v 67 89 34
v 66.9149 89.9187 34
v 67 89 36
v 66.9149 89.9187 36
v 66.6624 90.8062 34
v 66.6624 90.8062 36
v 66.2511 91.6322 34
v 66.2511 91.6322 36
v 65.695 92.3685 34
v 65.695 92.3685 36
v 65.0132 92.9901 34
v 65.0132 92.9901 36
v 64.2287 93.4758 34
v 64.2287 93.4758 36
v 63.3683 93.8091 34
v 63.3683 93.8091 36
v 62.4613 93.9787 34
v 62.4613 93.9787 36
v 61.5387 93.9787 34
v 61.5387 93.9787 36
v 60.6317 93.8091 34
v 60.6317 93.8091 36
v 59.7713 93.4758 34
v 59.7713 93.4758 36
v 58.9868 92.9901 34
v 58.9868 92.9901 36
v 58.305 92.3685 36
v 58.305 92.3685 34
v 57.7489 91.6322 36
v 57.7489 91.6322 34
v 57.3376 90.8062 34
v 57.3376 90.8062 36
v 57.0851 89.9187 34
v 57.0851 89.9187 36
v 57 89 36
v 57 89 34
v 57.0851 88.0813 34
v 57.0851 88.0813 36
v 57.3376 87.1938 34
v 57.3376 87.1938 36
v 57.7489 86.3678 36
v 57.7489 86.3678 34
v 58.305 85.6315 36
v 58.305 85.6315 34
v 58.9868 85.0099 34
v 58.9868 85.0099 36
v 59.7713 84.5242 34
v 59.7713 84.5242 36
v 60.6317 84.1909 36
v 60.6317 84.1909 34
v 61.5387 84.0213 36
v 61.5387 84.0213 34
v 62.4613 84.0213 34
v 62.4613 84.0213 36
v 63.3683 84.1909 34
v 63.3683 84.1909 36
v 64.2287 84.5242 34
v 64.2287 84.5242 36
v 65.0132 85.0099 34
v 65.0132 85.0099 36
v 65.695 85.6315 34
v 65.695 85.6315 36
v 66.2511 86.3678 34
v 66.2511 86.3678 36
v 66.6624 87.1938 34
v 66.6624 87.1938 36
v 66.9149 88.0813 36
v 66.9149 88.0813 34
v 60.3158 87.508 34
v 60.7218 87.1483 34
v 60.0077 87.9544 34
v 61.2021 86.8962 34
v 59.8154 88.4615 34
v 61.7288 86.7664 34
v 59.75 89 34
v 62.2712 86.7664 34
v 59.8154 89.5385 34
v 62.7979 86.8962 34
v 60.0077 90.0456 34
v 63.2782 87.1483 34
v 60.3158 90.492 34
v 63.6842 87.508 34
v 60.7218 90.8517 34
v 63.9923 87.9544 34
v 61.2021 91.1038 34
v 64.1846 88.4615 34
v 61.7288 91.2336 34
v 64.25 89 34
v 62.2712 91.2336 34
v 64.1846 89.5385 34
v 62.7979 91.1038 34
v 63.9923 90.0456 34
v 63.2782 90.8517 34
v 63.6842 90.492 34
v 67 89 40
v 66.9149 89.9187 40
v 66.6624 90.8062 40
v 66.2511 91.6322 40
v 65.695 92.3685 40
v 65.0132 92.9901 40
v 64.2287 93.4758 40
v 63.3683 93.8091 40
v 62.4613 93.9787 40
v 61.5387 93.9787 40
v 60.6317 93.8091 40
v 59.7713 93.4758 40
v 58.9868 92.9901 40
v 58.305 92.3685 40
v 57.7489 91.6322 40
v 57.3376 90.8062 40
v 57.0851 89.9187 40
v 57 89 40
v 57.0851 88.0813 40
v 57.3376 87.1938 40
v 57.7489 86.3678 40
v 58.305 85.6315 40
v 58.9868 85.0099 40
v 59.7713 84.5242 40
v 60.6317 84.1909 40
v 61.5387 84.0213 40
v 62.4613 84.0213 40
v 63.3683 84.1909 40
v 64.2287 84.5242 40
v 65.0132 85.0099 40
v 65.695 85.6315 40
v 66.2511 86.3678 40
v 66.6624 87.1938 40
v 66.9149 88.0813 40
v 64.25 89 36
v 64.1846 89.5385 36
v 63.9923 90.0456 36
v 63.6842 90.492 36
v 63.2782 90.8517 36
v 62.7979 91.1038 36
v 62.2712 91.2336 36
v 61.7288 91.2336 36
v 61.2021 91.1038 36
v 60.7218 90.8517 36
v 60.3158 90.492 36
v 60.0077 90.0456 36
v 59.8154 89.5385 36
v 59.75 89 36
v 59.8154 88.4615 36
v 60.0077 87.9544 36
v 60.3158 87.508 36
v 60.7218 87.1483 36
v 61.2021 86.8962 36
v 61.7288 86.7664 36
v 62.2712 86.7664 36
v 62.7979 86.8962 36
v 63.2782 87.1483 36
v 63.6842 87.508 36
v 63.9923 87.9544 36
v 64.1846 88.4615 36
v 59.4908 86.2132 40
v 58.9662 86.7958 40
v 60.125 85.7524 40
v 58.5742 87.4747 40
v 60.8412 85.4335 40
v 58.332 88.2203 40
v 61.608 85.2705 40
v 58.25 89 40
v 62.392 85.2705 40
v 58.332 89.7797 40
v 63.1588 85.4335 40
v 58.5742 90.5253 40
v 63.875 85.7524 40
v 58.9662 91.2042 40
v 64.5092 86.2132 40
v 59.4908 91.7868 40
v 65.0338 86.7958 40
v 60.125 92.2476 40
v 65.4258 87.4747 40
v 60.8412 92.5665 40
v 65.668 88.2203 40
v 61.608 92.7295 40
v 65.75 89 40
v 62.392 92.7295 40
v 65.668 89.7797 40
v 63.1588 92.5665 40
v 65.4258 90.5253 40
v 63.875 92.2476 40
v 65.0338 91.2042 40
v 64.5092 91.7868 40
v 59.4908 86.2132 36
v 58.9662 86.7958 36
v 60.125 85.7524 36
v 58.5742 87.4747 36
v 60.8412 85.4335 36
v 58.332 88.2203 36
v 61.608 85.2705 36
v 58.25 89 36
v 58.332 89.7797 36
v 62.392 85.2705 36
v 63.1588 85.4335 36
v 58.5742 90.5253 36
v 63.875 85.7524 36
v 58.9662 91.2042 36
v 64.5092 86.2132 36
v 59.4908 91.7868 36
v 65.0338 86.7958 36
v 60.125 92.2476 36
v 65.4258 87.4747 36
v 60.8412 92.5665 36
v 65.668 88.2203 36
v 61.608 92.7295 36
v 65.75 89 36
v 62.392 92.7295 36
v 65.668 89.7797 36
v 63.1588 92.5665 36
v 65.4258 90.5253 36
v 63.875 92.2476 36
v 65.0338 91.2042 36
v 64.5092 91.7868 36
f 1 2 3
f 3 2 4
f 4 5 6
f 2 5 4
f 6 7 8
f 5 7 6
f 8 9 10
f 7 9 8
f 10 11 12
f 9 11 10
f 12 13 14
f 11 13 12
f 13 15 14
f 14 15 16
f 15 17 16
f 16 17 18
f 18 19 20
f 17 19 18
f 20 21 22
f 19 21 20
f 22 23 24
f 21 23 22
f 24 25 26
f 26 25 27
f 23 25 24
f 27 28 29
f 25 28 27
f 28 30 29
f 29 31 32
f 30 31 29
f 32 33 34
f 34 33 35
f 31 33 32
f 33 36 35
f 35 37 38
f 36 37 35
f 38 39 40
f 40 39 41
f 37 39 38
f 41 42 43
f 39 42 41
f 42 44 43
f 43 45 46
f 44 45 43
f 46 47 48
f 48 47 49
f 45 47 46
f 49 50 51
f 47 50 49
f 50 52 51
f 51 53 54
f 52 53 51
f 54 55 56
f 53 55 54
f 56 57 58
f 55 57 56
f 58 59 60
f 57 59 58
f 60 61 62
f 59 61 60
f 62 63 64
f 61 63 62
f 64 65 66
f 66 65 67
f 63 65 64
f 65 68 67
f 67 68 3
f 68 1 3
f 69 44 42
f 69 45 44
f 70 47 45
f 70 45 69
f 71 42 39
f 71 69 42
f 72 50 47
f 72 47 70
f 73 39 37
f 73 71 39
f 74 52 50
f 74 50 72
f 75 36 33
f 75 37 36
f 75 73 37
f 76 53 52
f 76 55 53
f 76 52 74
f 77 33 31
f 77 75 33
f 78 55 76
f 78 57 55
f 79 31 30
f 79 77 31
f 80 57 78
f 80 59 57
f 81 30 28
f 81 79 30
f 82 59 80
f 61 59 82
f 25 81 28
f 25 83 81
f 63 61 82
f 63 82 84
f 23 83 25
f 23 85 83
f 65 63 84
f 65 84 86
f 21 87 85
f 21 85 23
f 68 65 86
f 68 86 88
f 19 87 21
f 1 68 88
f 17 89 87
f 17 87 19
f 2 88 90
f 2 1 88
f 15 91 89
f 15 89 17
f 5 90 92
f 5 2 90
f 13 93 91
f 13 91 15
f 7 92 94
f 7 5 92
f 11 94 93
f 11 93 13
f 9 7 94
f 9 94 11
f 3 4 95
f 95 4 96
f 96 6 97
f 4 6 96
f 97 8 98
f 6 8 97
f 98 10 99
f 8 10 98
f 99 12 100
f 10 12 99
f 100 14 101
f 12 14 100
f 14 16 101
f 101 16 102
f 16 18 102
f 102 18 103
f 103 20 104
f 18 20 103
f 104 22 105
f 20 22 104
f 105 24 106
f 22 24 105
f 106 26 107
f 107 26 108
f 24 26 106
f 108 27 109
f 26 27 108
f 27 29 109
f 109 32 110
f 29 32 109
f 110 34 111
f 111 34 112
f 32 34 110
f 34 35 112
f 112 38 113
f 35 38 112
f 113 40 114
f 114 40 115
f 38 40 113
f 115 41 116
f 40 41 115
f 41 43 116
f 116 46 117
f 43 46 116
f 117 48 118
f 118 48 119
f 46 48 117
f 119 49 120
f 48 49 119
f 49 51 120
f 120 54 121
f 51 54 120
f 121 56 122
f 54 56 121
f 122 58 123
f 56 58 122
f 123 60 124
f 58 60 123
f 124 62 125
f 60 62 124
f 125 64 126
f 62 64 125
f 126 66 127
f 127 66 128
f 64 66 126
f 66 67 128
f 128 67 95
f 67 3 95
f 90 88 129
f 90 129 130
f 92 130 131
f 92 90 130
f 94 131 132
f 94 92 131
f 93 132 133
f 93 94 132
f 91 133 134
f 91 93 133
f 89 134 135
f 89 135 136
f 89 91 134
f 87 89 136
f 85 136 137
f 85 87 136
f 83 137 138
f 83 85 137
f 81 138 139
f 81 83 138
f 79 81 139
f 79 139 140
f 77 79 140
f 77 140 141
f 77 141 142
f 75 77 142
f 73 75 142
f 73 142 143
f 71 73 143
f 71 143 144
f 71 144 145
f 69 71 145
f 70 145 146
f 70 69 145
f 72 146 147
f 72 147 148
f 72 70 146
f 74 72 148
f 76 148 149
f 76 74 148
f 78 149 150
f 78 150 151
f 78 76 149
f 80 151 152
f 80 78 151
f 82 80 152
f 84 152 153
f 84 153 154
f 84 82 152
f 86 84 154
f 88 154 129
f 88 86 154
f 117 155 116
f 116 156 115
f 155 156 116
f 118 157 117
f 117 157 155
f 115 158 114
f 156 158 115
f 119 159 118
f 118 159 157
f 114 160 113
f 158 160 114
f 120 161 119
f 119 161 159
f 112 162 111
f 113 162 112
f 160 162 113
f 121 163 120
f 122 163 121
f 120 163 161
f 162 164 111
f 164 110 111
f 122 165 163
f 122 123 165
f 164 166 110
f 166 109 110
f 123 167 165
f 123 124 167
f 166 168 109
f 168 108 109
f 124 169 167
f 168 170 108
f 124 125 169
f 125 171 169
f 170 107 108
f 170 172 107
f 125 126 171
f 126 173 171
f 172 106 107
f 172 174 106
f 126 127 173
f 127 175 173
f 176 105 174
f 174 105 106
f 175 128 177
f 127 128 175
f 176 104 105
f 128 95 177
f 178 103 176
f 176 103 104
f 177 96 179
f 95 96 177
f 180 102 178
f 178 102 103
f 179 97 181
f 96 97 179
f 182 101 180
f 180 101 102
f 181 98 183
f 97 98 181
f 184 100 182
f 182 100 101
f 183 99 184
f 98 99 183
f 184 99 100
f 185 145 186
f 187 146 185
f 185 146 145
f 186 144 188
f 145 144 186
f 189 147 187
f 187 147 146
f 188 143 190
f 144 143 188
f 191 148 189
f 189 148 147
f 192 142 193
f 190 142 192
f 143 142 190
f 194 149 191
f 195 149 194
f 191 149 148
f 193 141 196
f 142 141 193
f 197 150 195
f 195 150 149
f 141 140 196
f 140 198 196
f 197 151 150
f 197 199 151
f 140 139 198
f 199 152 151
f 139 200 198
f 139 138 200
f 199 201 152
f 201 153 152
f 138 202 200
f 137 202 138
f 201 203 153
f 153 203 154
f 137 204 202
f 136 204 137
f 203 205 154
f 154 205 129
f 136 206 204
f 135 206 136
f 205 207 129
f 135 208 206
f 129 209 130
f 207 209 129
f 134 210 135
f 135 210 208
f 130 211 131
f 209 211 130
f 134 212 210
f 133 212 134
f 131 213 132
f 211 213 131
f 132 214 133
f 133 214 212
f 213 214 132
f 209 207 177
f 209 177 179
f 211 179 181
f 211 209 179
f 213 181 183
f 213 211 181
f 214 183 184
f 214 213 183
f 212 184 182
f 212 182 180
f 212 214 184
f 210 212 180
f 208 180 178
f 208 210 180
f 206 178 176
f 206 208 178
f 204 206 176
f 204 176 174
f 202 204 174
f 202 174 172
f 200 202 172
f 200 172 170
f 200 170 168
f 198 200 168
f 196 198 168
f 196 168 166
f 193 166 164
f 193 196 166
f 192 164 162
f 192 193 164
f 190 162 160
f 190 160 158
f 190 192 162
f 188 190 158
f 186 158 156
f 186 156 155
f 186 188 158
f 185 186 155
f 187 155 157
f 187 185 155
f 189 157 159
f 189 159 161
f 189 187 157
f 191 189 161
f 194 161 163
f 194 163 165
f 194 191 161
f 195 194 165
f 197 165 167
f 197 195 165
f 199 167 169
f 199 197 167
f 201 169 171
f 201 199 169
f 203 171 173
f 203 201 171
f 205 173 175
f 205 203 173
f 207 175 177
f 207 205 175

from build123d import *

# Parameters (mm, degrees)
SKETCH090_R             = 5
SKETCH090_R_2           = 2.25
PAD032_DEPTH            = 2
SKETCH091_R             = 5
SKETCH091_R_2           = 3.75
PAD033_DEPTH            = 4
BODY011_PLACEMENT_ANGLE = 90


with BuildPart() as part:
    # Sketch090 → Pad032 (new body)
    with BuildSketch(Plane.XZ):
        Circle(SKETCH090_R)
        Circle(SKETCH090_R_2, mode=Mode.SUBTRACT)
    extrude(amount=PAD032_DEPTH)

    # Sketch091 (on Face4 of Pad032) → Pad033 (join)
    with BuildSketch(Plane.XZ.offset(2)):
        Circle(SKETCH091_R)
        Circle(SKETCH091_R_2, mode=Mode.SUBTRACT)
    extrude(amount=PAD033_DEPTH)


with BuildPart() as part_1:
    # Body011 placement: moved
    add(part.part.moved(Location((62, 89, 34))).rotate(Axis((62, 89, 34), (-1, 0, 0)), BODY011_PLACEMENT_ANGLE))


solid = part_1.part
